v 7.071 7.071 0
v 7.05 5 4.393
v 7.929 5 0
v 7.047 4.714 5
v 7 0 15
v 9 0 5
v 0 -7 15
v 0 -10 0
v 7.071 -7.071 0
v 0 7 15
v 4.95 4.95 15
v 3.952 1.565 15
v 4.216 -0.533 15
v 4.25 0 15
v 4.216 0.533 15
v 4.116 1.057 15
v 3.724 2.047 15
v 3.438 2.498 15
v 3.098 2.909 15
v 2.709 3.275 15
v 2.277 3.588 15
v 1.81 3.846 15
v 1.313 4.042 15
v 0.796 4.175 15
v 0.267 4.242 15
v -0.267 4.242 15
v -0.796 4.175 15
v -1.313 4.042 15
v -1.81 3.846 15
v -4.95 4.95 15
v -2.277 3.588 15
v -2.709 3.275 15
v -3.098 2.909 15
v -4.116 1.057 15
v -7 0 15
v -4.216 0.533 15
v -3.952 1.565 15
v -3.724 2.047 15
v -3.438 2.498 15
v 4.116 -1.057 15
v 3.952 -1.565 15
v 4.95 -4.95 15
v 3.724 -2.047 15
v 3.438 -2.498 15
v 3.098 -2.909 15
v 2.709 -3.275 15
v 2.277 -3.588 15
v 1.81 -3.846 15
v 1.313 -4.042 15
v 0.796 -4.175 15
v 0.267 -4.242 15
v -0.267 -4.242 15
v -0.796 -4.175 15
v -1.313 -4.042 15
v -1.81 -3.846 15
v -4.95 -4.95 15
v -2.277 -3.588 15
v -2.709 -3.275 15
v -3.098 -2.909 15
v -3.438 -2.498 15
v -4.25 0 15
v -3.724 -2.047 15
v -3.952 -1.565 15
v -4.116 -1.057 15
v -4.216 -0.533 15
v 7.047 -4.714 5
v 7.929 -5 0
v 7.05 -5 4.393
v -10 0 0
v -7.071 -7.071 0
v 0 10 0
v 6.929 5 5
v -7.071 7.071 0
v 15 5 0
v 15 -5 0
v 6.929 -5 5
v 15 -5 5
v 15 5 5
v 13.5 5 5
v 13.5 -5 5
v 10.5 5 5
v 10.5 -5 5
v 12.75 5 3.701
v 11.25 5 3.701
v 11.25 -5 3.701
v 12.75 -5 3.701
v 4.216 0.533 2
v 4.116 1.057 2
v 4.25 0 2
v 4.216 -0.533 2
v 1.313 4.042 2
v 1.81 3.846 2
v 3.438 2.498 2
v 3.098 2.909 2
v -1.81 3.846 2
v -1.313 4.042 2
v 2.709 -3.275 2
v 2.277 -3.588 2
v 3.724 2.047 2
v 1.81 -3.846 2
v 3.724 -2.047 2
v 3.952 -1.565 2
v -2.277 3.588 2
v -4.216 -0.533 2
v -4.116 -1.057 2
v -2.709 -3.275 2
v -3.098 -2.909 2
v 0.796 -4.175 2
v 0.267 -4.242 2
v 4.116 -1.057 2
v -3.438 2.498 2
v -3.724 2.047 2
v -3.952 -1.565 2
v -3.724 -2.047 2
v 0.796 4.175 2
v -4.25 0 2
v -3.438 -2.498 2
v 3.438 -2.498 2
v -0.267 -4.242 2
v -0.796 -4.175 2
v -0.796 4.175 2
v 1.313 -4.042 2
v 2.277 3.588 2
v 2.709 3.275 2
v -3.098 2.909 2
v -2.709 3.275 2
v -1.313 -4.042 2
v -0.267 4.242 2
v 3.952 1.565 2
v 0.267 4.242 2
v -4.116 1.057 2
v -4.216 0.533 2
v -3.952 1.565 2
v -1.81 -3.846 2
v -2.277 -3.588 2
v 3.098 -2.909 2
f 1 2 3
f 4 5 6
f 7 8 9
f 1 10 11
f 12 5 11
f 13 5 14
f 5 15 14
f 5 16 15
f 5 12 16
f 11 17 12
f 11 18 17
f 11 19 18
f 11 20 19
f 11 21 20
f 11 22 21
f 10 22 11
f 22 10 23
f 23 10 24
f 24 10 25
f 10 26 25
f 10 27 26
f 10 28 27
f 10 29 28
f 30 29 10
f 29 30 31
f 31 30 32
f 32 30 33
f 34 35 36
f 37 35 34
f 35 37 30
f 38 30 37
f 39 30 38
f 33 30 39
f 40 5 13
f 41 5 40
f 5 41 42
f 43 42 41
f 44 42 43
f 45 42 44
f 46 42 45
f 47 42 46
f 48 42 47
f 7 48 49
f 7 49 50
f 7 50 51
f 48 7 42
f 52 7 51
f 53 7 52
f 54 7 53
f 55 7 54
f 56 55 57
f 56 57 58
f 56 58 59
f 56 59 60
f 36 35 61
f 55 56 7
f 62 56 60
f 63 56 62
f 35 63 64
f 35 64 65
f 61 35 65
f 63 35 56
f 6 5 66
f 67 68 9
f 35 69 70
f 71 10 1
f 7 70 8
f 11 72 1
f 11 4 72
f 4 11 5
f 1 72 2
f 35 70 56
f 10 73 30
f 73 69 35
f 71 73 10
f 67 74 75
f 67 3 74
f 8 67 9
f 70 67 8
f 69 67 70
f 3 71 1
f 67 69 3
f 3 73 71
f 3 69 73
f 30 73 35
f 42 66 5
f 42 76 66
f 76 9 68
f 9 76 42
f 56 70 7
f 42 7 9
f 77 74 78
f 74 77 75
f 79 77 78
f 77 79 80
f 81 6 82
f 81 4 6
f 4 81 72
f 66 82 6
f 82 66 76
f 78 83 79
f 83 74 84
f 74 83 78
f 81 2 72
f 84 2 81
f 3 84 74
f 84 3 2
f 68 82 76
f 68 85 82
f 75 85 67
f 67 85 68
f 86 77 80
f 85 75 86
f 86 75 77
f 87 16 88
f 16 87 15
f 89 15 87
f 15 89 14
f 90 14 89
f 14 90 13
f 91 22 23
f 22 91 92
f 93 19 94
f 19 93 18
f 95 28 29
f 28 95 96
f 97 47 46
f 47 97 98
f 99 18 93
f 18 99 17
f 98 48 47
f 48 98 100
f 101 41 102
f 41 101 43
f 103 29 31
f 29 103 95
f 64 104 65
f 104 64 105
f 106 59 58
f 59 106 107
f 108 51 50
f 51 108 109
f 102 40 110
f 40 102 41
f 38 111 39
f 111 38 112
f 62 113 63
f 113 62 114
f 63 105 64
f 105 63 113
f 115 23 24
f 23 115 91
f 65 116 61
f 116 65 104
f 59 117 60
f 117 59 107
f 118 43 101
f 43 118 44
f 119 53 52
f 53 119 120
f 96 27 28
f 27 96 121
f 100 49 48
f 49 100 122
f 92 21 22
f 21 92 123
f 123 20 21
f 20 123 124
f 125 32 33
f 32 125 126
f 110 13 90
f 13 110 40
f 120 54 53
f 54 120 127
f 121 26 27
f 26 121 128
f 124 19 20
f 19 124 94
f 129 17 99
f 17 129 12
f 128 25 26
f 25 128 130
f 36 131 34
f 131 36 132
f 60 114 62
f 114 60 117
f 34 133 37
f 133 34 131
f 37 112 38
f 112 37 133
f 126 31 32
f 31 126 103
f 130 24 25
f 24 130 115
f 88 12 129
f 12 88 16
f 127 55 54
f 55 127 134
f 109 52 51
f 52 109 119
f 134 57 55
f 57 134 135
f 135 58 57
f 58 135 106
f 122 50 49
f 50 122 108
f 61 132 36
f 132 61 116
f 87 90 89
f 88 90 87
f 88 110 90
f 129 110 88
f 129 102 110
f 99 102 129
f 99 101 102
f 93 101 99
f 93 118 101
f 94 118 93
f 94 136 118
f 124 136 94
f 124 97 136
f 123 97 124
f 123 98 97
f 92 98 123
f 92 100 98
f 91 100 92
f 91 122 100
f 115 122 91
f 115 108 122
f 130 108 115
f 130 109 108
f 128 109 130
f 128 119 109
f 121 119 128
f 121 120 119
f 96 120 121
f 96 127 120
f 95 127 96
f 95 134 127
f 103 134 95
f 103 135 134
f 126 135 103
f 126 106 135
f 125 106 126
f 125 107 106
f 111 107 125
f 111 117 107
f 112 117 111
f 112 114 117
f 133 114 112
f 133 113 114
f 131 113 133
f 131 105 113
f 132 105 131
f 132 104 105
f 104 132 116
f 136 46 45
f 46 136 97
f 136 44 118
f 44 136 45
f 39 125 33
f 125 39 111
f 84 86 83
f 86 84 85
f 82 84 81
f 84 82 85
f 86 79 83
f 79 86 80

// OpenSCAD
difference() {
    union() {
        cylinder(15, 10, 7, $fn=8);
        translate([0, -5, 0]) cube([15, 10, 5]);
    }
    translate([0, 0, 2]) cylinder(20, 4.25, 4.25, $fn=50);
    #translate([12, 10, 5]) rotate([90,0,0]) cylinder(20, 1.5, 1.5, $fn=6);
}
